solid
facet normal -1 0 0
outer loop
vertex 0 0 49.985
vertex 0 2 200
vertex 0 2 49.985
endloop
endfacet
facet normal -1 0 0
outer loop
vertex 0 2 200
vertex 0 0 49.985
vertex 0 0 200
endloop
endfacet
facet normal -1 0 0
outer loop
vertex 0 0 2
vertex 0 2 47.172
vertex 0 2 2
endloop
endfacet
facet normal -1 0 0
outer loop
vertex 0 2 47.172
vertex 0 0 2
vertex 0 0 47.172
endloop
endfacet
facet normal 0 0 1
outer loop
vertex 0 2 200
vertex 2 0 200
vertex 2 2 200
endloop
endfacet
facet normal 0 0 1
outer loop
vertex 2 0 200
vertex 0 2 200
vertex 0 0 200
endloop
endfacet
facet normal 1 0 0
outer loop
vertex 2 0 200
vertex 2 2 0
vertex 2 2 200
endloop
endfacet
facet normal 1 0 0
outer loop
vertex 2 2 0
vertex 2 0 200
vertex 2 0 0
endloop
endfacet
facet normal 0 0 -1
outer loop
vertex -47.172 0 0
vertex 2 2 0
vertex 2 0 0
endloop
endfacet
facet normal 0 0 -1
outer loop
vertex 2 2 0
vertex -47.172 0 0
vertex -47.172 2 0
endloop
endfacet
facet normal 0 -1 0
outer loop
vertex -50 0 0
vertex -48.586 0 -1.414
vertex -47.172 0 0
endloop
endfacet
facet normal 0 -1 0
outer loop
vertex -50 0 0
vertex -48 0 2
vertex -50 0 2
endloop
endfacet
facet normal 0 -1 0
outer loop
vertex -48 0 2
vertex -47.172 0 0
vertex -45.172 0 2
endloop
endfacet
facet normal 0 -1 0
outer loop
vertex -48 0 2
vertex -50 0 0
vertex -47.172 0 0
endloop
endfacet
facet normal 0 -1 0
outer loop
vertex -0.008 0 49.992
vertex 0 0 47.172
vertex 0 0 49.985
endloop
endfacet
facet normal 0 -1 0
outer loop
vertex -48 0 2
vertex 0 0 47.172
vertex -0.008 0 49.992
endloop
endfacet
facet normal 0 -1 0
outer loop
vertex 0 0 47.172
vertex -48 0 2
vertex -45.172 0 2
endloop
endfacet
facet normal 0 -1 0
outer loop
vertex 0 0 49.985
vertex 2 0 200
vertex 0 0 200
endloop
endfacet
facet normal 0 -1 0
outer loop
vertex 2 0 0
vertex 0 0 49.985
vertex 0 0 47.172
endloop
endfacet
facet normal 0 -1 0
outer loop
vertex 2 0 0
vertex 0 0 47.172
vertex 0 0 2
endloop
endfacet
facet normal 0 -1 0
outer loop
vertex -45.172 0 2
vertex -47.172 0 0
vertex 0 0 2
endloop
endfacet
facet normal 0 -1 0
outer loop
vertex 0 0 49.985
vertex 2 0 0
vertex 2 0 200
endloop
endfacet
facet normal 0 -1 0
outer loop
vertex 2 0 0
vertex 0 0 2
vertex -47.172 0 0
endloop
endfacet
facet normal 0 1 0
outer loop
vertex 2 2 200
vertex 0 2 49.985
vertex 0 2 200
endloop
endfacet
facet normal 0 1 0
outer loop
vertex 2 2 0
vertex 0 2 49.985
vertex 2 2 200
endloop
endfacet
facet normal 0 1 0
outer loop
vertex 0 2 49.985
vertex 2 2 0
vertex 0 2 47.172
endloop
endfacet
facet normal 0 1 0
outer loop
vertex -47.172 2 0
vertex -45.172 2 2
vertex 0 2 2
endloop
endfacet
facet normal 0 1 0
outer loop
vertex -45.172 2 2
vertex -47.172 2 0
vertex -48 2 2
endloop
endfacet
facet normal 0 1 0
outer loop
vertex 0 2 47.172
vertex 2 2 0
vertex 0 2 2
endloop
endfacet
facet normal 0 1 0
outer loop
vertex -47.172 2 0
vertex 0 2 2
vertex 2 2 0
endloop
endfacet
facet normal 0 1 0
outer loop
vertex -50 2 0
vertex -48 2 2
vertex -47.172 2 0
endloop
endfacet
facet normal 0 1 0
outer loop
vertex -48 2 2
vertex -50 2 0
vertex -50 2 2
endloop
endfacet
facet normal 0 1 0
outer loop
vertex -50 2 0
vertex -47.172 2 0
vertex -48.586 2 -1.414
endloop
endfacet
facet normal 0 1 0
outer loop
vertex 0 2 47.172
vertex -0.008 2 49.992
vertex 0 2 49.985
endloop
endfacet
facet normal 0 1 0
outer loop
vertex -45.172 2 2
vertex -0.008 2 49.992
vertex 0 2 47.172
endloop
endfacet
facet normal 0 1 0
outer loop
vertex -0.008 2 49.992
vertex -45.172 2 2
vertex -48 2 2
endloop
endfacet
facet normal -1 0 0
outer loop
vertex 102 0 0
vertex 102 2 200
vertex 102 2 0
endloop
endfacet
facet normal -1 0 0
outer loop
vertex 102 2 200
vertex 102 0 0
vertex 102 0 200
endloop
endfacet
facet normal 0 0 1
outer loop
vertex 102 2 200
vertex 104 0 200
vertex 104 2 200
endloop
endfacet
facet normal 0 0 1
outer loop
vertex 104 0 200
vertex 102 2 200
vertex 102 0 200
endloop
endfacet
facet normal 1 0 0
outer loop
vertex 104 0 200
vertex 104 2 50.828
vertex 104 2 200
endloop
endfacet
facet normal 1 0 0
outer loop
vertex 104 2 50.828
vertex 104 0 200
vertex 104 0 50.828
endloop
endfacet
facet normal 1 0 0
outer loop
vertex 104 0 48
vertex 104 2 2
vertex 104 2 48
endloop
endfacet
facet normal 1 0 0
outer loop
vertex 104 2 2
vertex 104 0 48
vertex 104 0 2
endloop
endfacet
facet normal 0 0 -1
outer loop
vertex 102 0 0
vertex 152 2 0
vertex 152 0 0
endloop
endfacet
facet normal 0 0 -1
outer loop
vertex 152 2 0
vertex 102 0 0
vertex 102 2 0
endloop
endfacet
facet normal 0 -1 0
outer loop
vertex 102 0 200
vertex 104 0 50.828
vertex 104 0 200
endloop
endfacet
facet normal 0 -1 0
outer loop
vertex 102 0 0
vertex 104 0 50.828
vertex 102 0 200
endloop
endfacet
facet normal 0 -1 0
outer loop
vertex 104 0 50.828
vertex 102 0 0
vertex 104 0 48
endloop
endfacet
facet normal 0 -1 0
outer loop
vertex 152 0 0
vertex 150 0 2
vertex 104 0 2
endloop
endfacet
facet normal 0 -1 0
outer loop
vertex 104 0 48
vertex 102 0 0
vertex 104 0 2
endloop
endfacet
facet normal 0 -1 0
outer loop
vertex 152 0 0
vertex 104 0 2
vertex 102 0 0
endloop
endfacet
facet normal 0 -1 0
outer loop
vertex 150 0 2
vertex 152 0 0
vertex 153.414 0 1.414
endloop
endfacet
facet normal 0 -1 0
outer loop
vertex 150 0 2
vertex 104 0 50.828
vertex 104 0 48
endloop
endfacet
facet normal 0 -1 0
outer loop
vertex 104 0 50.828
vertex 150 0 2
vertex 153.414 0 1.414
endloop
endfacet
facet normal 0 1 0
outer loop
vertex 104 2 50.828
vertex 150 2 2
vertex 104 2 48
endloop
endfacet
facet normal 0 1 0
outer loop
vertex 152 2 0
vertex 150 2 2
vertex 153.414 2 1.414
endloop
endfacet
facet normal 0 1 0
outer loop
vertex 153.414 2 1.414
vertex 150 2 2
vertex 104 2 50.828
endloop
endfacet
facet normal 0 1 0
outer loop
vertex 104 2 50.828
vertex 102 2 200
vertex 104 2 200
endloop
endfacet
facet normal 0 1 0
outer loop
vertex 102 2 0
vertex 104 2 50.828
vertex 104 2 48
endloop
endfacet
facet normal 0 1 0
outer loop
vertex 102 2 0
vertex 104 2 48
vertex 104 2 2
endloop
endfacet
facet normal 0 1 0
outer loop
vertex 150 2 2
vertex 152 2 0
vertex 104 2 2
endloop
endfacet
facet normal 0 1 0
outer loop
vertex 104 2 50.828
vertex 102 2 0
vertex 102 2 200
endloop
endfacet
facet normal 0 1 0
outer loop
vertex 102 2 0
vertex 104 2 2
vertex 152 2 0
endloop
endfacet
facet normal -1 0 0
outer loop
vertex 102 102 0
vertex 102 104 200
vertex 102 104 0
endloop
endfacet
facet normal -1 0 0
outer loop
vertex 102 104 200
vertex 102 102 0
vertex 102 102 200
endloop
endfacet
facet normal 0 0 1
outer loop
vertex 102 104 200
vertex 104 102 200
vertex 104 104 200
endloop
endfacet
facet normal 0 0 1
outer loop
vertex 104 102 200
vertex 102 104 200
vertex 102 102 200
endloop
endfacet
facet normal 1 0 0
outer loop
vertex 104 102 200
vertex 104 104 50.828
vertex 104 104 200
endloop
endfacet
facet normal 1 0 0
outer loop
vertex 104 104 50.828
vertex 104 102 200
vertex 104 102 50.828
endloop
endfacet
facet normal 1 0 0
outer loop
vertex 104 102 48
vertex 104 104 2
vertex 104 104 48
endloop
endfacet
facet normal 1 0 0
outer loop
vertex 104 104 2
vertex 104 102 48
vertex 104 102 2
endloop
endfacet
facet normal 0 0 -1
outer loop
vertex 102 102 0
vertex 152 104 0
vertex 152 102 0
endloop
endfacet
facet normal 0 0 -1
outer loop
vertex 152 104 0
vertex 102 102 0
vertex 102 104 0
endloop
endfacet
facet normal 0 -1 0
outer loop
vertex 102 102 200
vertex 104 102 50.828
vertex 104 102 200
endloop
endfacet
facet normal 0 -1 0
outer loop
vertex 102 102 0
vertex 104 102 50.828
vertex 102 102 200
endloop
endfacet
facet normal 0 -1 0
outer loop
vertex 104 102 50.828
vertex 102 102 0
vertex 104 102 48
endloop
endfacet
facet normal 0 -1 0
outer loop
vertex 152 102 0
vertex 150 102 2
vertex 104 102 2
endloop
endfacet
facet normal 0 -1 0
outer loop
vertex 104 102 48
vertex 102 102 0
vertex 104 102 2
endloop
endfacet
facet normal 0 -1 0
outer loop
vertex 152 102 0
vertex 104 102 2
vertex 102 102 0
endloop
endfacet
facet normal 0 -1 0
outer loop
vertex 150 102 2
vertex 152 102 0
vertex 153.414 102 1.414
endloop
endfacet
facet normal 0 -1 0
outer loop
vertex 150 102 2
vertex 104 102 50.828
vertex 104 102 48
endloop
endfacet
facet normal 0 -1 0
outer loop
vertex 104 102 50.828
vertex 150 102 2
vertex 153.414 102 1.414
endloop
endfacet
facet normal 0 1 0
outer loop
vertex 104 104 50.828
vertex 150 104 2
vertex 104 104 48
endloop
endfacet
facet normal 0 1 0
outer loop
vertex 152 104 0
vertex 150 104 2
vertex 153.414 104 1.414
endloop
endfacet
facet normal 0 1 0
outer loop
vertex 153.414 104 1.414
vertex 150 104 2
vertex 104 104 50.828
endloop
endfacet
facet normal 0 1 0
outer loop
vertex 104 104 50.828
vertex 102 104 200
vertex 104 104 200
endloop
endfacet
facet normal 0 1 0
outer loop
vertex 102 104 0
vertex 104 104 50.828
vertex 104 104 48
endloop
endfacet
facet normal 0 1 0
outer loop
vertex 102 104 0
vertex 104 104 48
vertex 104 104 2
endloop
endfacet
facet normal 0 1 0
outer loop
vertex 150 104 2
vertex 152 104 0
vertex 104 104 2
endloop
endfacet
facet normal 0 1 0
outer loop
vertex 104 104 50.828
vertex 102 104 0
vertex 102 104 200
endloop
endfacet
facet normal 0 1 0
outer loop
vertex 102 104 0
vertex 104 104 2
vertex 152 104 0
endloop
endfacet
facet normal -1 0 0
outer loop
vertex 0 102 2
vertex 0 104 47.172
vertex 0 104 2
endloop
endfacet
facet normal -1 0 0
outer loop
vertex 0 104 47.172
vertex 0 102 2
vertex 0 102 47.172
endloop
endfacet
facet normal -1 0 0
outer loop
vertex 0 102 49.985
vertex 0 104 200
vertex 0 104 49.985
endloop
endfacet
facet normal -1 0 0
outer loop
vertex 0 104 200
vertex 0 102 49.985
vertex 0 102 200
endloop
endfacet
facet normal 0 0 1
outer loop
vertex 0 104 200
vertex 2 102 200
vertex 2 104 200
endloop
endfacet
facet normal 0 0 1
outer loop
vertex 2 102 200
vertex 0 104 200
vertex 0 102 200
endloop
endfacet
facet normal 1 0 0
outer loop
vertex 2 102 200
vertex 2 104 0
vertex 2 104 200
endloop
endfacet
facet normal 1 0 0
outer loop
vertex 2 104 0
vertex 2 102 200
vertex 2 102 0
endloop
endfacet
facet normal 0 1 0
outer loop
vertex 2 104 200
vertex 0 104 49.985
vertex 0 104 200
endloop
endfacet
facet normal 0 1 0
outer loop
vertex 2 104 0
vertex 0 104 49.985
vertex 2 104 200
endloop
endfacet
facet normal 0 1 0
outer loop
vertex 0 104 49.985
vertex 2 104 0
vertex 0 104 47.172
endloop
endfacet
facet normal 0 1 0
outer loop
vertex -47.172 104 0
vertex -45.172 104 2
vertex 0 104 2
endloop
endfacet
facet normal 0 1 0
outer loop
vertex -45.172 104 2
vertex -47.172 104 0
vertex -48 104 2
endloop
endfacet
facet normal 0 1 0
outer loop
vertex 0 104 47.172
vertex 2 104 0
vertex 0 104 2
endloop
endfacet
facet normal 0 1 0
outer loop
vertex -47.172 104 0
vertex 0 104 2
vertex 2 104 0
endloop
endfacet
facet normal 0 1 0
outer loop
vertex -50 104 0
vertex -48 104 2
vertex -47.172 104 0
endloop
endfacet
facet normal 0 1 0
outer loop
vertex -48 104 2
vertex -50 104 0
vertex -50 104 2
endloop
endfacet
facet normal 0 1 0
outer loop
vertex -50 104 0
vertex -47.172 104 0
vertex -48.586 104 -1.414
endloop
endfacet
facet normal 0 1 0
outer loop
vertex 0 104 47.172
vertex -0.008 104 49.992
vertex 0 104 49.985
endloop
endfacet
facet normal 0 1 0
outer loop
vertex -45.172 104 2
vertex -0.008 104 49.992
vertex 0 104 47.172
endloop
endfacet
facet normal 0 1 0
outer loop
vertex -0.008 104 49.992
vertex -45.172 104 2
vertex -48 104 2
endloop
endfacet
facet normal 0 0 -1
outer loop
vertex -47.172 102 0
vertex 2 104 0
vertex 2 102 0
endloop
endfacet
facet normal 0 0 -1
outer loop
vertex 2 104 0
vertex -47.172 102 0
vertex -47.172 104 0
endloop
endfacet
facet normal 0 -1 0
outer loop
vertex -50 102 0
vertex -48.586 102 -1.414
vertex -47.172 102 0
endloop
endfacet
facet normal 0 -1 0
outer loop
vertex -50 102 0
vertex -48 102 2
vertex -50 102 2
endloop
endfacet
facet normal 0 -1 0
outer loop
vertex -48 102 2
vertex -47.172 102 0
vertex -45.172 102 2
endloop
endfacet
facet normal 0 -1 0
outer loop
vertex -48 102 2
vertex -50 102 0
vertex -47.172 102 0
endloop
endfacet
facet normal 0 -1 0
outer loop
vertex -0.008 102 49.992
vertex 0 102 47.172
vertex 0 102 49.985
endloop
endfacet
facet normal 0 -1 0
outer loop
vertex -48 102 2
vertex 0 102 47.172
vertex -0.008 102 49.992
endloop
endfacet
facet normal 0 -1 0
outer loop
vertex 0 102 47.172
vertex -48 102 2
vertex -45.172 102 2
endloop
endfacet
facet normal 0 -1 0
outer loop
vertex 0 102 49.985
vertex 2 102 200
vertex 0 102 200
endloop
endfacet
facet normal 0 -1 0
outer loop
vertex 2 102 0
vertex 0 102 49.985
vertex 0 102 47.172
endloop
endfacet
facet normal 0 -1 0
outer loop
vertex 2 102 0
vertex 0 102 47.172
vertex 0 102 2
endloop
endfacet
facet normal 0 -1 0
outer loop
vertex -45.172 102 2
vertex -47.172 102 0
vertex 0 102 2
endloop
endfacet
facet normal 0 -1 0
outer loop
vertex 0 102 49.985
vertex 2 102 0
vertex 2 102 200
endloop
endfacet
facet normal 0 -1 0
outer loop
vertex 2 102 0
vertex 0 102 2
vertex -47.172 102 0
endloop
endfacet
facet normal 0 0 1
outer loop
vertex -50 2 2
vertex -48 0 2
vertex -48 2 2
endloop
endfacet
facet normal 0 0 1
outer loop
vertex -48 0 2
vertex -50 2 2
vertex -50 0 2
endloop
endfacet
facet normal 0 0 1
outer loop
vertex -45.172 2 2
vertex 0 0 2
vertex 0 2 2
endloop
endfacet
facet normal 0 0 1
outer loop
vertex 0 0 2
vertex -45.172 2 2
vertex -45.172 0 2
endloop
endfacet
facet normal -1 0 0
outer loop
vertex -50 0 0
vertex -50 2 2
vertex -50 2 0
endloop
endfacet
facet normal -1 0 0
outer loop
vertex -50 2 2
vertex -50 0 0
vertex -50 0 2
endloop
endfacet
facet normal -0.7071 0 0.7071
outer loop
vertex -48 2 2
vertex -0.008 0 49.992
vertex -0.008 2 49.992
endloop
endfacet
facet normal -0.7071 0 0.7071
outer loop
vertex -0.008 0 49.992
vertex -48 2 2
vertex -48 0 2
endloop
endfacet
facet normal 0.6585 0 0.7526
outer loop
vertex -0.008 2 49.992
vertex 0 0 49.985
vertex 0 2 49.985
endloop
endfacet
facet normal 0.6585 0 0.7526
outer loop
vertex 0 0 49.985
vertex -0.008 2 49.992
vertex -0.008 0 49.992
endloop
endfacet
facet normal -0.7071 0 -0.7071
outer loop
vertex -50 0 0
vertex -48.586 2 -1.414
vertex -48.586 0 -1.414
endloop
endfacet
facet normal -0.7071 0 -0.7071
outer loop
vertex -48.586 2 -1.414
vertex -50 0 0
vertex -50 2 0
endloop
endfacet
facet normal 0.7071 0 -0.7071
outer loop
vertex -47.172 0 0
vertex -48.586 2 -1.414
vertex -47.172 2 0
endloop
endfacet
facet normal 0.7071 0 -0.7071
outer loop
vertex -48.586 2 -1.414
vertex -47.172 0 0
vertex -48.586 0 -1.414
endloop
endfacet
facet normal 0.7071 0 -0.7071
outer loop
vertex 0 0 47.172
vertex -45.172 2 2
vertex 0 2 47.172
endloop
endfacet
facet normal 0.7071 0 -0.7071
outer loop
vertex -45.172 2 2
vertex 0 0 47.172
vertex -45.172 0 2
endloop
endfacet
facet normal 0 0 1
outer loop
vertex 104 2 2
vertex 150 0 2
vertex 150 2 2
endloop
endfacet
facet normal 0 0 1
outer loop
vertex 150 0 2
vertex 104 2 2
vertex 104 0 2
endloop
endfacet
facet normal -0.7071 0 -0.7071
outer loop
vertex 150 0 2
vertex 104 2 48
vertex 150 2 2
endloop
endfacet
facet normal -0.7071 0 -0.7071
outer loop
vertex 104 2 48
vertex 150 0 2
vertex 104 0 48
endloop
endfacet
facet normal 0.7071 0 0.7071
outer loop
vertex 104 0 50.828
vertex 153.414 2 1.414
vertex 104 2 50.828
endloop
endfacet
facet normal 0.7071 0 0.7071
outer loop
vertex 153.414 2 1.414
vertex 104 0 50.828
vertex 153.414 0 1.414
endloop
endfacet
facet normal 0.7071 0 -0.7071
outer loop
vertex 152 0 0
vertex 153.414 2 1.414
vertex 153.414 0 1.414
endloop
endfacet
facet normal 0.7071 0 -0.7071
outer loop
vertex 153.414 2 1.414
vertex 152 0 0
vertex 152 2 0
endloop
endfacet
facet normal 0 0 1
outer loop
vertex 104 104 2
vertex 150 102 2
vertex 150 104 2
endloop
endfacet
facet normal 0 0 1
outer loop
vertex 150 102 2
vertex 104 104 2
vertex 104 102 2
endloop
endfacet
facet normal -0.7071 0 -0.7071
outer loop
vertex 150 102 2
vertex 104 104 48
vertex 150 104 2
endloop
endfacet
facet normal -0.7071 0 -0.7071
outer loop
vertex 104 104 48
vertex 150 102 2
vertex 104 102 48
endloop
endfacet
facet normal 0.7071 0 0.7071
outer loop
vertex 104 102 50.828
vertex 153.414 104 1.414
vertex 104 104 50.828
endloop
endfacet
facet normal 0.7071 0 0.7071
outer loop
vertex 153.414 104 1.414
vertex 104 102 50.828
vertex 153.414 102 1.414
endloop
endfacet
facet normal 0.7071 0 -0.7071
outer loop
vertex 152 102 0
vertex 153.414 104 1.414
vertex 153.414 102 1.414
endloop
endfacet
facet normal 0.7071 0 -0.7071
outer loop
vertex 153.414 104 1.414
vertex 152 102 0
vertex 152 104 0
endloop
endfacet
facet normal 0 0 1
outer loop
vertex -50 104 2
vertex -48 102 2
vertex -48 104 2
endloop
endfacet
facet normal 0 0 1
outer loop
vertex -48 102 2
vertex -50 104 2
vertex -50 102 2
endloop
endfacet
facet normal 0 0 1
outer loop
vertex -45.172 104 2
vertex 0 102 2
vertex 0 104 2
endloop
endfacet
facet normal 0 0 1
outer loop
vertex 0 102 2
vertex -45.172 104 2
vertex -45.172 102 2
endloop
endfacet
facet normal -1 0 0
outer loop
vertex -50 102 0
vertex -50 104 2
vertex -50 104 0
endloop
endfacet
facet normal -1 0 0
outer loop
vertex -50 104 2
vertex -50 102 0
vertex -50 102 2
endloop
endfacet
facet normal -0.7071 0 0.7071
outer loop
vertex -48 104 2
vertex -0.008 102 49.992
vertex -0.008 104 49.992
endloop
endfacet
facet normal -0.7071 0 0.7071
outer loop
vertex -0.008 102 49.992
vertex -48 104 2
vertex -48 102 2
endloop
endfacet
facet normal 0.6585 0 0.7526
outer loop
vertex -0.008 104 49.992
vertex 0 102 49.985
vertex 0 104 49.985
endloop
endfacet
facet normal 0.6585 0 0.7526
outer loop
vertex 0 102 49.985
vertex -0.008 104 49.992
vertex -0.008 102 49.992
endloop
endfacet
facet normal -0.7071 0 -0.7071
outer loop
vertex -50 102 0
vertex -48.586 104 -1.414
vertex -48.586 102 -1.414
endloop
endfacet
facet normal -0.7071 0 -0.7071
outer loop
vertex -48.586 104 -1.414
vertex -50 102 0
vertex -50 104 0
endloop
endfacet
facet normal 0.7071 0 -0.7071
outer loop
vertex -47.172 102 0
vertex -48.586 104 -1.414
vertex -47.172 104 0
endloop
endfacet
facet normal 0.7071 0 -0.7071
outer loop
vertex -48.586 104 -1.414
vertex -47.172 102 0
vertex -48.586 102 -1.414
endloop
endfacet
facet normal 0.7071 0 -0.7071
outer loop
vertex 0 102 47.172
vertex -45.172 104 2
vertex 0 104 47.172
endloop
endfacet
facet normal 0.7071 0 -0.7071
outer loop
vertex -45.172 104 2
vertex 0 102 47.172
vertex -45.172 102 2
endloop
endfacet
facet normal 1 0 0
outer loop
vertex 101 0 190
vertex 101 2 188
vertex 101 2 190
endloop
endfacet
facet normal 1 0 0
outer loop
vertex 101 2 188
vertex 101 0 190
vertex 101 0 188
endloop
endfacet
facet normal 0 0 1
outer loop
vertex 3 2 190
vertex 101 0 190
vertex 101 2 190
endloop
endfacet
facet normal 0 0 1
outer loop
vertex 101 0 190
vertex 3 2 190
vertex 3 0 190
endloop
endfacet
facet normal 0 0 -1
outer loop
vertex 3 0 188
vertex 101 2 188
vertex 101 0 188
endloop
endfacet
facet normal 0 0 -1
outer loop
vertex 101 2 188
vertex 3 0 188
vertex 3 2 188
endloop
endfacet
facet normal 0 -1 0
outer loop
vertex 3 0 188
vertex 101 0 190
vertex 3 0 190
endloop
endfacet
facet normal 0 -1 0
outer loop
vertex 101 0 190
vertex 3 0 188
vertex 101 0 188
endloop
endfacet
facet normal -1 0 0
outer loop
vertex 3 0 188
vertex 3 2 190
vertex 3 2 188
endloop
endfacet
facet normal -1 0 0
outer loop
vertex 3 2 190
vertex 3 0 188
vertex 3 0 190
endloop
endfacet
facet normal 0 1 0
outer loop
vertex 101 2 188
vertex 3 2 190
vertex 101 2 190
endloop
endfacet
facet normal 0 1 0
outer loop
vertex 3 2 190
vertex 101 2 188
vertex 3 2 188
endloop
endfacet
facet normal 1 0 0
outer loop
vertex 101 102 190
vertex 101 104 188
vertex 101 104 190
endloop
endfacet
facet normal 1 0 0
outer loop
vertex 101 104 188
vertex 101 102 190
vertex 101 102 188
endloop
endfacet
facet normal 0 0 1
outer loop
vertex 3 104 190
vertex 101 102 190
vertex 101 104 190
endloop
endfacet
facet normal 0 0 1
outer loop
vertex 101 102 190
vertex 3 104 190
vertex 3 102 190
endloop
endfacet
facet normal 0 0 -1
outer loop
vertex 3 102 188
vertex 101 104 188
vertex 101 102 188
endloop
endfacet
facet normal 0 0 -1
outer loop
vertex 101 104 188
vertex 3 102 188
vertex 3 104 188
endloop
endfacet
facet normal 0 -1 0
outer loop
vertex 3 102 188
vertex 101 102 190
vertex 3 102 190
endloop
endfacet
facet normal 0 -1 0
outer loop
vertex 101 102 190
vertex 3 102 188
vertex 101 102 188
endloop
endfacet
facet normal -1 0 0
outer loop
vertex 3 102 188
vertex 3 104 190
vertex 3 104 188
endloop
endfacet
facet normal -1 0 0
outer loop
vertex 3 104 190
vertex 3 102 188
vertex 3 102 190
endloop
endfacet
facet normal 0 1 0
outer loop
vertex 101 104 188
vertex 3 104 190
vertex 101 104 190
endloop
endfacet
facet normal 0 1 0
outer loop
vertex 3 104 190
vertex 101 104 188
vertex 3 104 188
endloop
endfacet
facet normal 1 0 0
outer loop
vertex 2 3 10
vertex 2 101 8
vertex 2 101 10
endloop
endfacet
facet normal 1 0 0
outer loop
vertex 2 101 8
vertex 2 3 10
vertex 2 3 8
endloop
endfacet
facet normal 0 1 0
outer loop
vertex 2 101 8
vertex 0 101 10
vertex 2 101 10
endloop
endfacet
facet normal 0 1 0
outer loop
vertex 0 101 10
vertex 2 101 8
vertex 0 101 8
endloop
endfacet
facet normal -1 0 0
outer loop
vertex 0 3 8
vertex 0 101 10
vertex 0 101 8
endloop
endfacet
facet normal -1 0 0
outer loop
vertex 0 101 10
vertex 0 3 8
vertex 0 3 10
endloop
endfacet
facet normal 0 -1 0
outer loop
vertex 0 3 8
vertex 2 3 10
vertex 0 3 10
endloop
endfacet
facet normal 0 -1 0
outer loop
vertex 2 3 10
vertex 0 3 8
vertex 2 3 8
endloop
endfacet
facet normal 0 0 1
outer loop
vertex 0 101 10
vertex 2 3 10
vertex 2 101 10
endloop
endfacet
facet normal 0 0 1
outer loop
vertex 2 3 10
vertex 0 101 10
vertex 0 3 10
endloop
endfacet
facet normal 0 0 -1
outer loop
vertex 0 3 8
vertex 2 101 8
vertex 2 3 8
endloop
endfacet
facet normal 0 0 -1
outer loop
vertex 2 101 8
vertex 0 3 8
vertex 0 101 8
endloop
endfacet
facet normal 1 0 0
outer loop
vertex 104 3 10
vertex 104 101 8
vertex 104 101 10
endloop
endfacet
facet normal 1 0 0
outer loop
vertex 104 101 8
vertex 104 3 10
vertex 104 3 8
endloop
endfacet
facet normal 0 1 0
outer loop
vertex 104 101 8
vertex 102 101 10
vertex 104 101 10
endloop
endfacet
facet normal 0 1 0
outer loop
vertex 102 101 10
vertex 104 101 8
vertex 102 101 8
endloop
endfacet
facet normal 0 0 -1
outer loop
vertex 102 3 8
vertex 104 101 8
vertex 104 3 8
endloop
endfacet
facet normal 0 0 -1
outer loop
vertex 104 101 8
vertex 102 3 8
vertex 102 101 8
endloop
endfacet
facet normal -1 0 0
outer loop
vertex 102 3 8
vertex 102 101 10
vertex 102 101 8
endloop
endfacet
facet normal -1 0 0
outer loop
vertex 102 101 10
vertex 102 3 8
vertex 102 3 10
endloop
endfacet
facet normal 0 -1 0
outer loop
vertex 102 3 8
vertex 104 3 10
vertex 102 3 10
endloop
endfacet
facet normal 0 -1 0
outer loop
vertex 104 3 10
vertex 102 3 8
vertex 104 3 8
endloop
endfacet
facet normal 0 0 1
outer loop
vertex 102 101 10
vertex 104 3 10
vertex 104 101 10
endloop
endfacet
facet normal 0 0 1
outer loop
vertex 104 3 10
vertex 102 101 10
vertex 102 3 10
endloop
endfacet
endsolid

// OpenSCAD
al_sideL=2; //鋁擠邊長
side_rollerR=1; //軌道輪直徑
scanner_upper=190;
scanner_lowper=10;

module al(x,y,z,length){
    translate([x,y,z])
    color("Silver")    
    cube([al_sideL,al_sideL,length]);
}
//支架
al(0,0,0,200);//Front L
al(102,0,0,200);//Front R
al(102,102,0,200);//Rear R
al(0,102,0,200);//Rear L
    //Front L triangle
translate([-50,0,al_sideL]) rotate([0,90,0]) color("Silver")  cube([al_sideL,al_sideL,50]);
translate([-50,0,0]) rotate([0,45,0]) color("Silver")  cube([al_sideL,al_sideL,70.7]);
    //Front R triangle
translate([152,0,0]) rotate([0,-90,0]) color("Silver")  cube([al_sideL,al_sideL,50]);
translate([152,0,0]) rotate([0,-45,0]) color("Silver")  cube([al_sideL,al_sideL,70.7]);
    //Rear R triangle
translate([152,102,0]) rotate([0,-90,0]) color("Silver")  cube([al_sideL,al_sideL,50]);
translate([152,102,0]) rotate([0,-45,0]) color("Silver")  cube([al_sideL,al_sideL,70.7]);
    //Rear L triangle
translate([-50,102,al_sideL]) rotate([0,90,0]) color("Silver")  cube([al_sideL,al_sideL,50]);
translate([-50,102,0]) rotate([0,45,0]) color("Silver")  cube([al_sideL,al_sideL,70.7]);

//

//Scanner
translate([al_sideL + side_rollerR,0,scanner_upper]) //Front scan
    rotate([0,90,0]) cube([2,2,100-2*side_rollerR]);
translate([al_sideL + side_rollerR,102,scanner_upper]) //Rear scan
    rotate([0,90,0]) cube([2,2,100-2*side_rollerR]);
translate([0,al_sideL + side_rollerR,scanner_lowper]) //L scan
    rotate([-90,0,0]) cube([2,2,100-2*side_rollerR]);
translate([102,al_sideL + side_rollerR,scanner_lowper]) //R scan
    rotate([-90,0,0]) cube([2,2,100-2*side_rollerR]);
